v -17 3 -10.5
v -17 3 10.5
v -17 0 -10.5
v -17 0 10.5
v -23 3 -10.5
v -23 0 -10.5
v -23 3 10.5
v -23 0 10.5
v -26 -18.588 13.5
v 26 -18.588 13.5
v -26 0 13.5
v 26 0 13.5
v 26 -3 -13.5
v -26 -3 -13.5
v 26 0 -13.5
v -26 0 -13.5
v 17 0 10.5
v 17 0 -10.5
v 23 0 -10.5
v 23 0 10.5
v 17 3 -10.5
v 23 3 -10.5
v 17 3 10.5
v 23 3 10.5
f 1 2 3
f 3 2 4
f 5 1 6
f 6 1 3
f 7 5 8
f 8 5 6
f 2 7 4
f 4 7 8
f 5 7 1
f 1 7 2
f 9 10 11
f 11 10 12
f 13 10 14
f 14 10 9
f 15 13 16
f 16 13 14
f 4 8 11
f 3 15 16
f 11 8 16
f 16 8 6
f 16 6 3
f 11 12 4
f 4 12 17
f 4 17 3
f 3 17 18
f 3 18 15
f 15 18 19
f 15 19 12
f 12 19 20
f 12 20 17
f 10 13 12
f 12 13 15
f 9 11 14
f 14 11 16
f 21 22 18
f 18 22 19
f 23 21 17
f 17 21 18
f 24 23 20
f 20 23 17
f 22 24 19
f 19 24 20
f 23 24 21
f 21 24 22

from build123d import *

# Parameters (mm, degrees)
SKETCH1_W             = 6
SKETCH1_H             = 21
BOSS_EXTRUDE1_DEPTH   = 3
BOSS_EXTRUDE1_2_DEPTH = 3
SKETCH1_3_W           = 52
SKETCH1_3_H           = 27
BOSS_EXTRUDE2_DEPTH   = 3
BOSS_EXTRUDE3_DEPTH   = 52


with BuildPart() as part:
    # Sketch1 → Boss-Extrude1 (new body)
    with BuildSketch(Plane(origin=(0, 0, 0), x_dir=(1, 0, 0), z_dir=(0, 1, 0))):
        with Locations((-20, 0)):
            Rectangle(SKETCH1_W, SKETCH1_H)
    extrude(amount=BOSS_EXTRUDE1_DEPTH)



with BuildPart() as body_2:
    # Sketch1 → Boss-Extrude1 2 (new body)
    with BuildSketch(Plane(origin=(0, 0, 0), x_dir=(1, 0, 0), z_dir=(0, 1, 0))):
        with Locations((20, 0)):
            Rectangle(SKETCH1_W, SKETCH1_H)
    extrude(amount=BOSS_EXTRUDE1_2_DEPTH)


with BuildPart() as body_3:
    # Sketch1<3> → Boss-Extrude2 (new body)
    with BuildSketch(Plane(origin=(0, 0, 0), x_dir=(1, 0, 0), z_dir=(0, 1, 0))):
        Rectangle(SKETCH1_3_W, SKETCH1_3_H)
    extrude(amount=-BOSS_EXTRUDE2_DEPTH)


with BuildPart() as part_1:
    add(part.part)

    add(body_2.part)  # Boss-Extrude3 merges body 2

    add(body_3.part)  # Boss-Extrude3 merges body 3
    # Sketch2 → Boss-Extrude3 (add)
    with BuildSketch(Plane.ZY.offset(26)):
        Polygon((13.5, -3), (13.5, -18.588457268), (-13.5, -3), (-13.5, 0), (13.5, 0), align=None)
    extrude(amount=-BOSS_EXTRUDE3_DEPTH)


solid = part_1.part
